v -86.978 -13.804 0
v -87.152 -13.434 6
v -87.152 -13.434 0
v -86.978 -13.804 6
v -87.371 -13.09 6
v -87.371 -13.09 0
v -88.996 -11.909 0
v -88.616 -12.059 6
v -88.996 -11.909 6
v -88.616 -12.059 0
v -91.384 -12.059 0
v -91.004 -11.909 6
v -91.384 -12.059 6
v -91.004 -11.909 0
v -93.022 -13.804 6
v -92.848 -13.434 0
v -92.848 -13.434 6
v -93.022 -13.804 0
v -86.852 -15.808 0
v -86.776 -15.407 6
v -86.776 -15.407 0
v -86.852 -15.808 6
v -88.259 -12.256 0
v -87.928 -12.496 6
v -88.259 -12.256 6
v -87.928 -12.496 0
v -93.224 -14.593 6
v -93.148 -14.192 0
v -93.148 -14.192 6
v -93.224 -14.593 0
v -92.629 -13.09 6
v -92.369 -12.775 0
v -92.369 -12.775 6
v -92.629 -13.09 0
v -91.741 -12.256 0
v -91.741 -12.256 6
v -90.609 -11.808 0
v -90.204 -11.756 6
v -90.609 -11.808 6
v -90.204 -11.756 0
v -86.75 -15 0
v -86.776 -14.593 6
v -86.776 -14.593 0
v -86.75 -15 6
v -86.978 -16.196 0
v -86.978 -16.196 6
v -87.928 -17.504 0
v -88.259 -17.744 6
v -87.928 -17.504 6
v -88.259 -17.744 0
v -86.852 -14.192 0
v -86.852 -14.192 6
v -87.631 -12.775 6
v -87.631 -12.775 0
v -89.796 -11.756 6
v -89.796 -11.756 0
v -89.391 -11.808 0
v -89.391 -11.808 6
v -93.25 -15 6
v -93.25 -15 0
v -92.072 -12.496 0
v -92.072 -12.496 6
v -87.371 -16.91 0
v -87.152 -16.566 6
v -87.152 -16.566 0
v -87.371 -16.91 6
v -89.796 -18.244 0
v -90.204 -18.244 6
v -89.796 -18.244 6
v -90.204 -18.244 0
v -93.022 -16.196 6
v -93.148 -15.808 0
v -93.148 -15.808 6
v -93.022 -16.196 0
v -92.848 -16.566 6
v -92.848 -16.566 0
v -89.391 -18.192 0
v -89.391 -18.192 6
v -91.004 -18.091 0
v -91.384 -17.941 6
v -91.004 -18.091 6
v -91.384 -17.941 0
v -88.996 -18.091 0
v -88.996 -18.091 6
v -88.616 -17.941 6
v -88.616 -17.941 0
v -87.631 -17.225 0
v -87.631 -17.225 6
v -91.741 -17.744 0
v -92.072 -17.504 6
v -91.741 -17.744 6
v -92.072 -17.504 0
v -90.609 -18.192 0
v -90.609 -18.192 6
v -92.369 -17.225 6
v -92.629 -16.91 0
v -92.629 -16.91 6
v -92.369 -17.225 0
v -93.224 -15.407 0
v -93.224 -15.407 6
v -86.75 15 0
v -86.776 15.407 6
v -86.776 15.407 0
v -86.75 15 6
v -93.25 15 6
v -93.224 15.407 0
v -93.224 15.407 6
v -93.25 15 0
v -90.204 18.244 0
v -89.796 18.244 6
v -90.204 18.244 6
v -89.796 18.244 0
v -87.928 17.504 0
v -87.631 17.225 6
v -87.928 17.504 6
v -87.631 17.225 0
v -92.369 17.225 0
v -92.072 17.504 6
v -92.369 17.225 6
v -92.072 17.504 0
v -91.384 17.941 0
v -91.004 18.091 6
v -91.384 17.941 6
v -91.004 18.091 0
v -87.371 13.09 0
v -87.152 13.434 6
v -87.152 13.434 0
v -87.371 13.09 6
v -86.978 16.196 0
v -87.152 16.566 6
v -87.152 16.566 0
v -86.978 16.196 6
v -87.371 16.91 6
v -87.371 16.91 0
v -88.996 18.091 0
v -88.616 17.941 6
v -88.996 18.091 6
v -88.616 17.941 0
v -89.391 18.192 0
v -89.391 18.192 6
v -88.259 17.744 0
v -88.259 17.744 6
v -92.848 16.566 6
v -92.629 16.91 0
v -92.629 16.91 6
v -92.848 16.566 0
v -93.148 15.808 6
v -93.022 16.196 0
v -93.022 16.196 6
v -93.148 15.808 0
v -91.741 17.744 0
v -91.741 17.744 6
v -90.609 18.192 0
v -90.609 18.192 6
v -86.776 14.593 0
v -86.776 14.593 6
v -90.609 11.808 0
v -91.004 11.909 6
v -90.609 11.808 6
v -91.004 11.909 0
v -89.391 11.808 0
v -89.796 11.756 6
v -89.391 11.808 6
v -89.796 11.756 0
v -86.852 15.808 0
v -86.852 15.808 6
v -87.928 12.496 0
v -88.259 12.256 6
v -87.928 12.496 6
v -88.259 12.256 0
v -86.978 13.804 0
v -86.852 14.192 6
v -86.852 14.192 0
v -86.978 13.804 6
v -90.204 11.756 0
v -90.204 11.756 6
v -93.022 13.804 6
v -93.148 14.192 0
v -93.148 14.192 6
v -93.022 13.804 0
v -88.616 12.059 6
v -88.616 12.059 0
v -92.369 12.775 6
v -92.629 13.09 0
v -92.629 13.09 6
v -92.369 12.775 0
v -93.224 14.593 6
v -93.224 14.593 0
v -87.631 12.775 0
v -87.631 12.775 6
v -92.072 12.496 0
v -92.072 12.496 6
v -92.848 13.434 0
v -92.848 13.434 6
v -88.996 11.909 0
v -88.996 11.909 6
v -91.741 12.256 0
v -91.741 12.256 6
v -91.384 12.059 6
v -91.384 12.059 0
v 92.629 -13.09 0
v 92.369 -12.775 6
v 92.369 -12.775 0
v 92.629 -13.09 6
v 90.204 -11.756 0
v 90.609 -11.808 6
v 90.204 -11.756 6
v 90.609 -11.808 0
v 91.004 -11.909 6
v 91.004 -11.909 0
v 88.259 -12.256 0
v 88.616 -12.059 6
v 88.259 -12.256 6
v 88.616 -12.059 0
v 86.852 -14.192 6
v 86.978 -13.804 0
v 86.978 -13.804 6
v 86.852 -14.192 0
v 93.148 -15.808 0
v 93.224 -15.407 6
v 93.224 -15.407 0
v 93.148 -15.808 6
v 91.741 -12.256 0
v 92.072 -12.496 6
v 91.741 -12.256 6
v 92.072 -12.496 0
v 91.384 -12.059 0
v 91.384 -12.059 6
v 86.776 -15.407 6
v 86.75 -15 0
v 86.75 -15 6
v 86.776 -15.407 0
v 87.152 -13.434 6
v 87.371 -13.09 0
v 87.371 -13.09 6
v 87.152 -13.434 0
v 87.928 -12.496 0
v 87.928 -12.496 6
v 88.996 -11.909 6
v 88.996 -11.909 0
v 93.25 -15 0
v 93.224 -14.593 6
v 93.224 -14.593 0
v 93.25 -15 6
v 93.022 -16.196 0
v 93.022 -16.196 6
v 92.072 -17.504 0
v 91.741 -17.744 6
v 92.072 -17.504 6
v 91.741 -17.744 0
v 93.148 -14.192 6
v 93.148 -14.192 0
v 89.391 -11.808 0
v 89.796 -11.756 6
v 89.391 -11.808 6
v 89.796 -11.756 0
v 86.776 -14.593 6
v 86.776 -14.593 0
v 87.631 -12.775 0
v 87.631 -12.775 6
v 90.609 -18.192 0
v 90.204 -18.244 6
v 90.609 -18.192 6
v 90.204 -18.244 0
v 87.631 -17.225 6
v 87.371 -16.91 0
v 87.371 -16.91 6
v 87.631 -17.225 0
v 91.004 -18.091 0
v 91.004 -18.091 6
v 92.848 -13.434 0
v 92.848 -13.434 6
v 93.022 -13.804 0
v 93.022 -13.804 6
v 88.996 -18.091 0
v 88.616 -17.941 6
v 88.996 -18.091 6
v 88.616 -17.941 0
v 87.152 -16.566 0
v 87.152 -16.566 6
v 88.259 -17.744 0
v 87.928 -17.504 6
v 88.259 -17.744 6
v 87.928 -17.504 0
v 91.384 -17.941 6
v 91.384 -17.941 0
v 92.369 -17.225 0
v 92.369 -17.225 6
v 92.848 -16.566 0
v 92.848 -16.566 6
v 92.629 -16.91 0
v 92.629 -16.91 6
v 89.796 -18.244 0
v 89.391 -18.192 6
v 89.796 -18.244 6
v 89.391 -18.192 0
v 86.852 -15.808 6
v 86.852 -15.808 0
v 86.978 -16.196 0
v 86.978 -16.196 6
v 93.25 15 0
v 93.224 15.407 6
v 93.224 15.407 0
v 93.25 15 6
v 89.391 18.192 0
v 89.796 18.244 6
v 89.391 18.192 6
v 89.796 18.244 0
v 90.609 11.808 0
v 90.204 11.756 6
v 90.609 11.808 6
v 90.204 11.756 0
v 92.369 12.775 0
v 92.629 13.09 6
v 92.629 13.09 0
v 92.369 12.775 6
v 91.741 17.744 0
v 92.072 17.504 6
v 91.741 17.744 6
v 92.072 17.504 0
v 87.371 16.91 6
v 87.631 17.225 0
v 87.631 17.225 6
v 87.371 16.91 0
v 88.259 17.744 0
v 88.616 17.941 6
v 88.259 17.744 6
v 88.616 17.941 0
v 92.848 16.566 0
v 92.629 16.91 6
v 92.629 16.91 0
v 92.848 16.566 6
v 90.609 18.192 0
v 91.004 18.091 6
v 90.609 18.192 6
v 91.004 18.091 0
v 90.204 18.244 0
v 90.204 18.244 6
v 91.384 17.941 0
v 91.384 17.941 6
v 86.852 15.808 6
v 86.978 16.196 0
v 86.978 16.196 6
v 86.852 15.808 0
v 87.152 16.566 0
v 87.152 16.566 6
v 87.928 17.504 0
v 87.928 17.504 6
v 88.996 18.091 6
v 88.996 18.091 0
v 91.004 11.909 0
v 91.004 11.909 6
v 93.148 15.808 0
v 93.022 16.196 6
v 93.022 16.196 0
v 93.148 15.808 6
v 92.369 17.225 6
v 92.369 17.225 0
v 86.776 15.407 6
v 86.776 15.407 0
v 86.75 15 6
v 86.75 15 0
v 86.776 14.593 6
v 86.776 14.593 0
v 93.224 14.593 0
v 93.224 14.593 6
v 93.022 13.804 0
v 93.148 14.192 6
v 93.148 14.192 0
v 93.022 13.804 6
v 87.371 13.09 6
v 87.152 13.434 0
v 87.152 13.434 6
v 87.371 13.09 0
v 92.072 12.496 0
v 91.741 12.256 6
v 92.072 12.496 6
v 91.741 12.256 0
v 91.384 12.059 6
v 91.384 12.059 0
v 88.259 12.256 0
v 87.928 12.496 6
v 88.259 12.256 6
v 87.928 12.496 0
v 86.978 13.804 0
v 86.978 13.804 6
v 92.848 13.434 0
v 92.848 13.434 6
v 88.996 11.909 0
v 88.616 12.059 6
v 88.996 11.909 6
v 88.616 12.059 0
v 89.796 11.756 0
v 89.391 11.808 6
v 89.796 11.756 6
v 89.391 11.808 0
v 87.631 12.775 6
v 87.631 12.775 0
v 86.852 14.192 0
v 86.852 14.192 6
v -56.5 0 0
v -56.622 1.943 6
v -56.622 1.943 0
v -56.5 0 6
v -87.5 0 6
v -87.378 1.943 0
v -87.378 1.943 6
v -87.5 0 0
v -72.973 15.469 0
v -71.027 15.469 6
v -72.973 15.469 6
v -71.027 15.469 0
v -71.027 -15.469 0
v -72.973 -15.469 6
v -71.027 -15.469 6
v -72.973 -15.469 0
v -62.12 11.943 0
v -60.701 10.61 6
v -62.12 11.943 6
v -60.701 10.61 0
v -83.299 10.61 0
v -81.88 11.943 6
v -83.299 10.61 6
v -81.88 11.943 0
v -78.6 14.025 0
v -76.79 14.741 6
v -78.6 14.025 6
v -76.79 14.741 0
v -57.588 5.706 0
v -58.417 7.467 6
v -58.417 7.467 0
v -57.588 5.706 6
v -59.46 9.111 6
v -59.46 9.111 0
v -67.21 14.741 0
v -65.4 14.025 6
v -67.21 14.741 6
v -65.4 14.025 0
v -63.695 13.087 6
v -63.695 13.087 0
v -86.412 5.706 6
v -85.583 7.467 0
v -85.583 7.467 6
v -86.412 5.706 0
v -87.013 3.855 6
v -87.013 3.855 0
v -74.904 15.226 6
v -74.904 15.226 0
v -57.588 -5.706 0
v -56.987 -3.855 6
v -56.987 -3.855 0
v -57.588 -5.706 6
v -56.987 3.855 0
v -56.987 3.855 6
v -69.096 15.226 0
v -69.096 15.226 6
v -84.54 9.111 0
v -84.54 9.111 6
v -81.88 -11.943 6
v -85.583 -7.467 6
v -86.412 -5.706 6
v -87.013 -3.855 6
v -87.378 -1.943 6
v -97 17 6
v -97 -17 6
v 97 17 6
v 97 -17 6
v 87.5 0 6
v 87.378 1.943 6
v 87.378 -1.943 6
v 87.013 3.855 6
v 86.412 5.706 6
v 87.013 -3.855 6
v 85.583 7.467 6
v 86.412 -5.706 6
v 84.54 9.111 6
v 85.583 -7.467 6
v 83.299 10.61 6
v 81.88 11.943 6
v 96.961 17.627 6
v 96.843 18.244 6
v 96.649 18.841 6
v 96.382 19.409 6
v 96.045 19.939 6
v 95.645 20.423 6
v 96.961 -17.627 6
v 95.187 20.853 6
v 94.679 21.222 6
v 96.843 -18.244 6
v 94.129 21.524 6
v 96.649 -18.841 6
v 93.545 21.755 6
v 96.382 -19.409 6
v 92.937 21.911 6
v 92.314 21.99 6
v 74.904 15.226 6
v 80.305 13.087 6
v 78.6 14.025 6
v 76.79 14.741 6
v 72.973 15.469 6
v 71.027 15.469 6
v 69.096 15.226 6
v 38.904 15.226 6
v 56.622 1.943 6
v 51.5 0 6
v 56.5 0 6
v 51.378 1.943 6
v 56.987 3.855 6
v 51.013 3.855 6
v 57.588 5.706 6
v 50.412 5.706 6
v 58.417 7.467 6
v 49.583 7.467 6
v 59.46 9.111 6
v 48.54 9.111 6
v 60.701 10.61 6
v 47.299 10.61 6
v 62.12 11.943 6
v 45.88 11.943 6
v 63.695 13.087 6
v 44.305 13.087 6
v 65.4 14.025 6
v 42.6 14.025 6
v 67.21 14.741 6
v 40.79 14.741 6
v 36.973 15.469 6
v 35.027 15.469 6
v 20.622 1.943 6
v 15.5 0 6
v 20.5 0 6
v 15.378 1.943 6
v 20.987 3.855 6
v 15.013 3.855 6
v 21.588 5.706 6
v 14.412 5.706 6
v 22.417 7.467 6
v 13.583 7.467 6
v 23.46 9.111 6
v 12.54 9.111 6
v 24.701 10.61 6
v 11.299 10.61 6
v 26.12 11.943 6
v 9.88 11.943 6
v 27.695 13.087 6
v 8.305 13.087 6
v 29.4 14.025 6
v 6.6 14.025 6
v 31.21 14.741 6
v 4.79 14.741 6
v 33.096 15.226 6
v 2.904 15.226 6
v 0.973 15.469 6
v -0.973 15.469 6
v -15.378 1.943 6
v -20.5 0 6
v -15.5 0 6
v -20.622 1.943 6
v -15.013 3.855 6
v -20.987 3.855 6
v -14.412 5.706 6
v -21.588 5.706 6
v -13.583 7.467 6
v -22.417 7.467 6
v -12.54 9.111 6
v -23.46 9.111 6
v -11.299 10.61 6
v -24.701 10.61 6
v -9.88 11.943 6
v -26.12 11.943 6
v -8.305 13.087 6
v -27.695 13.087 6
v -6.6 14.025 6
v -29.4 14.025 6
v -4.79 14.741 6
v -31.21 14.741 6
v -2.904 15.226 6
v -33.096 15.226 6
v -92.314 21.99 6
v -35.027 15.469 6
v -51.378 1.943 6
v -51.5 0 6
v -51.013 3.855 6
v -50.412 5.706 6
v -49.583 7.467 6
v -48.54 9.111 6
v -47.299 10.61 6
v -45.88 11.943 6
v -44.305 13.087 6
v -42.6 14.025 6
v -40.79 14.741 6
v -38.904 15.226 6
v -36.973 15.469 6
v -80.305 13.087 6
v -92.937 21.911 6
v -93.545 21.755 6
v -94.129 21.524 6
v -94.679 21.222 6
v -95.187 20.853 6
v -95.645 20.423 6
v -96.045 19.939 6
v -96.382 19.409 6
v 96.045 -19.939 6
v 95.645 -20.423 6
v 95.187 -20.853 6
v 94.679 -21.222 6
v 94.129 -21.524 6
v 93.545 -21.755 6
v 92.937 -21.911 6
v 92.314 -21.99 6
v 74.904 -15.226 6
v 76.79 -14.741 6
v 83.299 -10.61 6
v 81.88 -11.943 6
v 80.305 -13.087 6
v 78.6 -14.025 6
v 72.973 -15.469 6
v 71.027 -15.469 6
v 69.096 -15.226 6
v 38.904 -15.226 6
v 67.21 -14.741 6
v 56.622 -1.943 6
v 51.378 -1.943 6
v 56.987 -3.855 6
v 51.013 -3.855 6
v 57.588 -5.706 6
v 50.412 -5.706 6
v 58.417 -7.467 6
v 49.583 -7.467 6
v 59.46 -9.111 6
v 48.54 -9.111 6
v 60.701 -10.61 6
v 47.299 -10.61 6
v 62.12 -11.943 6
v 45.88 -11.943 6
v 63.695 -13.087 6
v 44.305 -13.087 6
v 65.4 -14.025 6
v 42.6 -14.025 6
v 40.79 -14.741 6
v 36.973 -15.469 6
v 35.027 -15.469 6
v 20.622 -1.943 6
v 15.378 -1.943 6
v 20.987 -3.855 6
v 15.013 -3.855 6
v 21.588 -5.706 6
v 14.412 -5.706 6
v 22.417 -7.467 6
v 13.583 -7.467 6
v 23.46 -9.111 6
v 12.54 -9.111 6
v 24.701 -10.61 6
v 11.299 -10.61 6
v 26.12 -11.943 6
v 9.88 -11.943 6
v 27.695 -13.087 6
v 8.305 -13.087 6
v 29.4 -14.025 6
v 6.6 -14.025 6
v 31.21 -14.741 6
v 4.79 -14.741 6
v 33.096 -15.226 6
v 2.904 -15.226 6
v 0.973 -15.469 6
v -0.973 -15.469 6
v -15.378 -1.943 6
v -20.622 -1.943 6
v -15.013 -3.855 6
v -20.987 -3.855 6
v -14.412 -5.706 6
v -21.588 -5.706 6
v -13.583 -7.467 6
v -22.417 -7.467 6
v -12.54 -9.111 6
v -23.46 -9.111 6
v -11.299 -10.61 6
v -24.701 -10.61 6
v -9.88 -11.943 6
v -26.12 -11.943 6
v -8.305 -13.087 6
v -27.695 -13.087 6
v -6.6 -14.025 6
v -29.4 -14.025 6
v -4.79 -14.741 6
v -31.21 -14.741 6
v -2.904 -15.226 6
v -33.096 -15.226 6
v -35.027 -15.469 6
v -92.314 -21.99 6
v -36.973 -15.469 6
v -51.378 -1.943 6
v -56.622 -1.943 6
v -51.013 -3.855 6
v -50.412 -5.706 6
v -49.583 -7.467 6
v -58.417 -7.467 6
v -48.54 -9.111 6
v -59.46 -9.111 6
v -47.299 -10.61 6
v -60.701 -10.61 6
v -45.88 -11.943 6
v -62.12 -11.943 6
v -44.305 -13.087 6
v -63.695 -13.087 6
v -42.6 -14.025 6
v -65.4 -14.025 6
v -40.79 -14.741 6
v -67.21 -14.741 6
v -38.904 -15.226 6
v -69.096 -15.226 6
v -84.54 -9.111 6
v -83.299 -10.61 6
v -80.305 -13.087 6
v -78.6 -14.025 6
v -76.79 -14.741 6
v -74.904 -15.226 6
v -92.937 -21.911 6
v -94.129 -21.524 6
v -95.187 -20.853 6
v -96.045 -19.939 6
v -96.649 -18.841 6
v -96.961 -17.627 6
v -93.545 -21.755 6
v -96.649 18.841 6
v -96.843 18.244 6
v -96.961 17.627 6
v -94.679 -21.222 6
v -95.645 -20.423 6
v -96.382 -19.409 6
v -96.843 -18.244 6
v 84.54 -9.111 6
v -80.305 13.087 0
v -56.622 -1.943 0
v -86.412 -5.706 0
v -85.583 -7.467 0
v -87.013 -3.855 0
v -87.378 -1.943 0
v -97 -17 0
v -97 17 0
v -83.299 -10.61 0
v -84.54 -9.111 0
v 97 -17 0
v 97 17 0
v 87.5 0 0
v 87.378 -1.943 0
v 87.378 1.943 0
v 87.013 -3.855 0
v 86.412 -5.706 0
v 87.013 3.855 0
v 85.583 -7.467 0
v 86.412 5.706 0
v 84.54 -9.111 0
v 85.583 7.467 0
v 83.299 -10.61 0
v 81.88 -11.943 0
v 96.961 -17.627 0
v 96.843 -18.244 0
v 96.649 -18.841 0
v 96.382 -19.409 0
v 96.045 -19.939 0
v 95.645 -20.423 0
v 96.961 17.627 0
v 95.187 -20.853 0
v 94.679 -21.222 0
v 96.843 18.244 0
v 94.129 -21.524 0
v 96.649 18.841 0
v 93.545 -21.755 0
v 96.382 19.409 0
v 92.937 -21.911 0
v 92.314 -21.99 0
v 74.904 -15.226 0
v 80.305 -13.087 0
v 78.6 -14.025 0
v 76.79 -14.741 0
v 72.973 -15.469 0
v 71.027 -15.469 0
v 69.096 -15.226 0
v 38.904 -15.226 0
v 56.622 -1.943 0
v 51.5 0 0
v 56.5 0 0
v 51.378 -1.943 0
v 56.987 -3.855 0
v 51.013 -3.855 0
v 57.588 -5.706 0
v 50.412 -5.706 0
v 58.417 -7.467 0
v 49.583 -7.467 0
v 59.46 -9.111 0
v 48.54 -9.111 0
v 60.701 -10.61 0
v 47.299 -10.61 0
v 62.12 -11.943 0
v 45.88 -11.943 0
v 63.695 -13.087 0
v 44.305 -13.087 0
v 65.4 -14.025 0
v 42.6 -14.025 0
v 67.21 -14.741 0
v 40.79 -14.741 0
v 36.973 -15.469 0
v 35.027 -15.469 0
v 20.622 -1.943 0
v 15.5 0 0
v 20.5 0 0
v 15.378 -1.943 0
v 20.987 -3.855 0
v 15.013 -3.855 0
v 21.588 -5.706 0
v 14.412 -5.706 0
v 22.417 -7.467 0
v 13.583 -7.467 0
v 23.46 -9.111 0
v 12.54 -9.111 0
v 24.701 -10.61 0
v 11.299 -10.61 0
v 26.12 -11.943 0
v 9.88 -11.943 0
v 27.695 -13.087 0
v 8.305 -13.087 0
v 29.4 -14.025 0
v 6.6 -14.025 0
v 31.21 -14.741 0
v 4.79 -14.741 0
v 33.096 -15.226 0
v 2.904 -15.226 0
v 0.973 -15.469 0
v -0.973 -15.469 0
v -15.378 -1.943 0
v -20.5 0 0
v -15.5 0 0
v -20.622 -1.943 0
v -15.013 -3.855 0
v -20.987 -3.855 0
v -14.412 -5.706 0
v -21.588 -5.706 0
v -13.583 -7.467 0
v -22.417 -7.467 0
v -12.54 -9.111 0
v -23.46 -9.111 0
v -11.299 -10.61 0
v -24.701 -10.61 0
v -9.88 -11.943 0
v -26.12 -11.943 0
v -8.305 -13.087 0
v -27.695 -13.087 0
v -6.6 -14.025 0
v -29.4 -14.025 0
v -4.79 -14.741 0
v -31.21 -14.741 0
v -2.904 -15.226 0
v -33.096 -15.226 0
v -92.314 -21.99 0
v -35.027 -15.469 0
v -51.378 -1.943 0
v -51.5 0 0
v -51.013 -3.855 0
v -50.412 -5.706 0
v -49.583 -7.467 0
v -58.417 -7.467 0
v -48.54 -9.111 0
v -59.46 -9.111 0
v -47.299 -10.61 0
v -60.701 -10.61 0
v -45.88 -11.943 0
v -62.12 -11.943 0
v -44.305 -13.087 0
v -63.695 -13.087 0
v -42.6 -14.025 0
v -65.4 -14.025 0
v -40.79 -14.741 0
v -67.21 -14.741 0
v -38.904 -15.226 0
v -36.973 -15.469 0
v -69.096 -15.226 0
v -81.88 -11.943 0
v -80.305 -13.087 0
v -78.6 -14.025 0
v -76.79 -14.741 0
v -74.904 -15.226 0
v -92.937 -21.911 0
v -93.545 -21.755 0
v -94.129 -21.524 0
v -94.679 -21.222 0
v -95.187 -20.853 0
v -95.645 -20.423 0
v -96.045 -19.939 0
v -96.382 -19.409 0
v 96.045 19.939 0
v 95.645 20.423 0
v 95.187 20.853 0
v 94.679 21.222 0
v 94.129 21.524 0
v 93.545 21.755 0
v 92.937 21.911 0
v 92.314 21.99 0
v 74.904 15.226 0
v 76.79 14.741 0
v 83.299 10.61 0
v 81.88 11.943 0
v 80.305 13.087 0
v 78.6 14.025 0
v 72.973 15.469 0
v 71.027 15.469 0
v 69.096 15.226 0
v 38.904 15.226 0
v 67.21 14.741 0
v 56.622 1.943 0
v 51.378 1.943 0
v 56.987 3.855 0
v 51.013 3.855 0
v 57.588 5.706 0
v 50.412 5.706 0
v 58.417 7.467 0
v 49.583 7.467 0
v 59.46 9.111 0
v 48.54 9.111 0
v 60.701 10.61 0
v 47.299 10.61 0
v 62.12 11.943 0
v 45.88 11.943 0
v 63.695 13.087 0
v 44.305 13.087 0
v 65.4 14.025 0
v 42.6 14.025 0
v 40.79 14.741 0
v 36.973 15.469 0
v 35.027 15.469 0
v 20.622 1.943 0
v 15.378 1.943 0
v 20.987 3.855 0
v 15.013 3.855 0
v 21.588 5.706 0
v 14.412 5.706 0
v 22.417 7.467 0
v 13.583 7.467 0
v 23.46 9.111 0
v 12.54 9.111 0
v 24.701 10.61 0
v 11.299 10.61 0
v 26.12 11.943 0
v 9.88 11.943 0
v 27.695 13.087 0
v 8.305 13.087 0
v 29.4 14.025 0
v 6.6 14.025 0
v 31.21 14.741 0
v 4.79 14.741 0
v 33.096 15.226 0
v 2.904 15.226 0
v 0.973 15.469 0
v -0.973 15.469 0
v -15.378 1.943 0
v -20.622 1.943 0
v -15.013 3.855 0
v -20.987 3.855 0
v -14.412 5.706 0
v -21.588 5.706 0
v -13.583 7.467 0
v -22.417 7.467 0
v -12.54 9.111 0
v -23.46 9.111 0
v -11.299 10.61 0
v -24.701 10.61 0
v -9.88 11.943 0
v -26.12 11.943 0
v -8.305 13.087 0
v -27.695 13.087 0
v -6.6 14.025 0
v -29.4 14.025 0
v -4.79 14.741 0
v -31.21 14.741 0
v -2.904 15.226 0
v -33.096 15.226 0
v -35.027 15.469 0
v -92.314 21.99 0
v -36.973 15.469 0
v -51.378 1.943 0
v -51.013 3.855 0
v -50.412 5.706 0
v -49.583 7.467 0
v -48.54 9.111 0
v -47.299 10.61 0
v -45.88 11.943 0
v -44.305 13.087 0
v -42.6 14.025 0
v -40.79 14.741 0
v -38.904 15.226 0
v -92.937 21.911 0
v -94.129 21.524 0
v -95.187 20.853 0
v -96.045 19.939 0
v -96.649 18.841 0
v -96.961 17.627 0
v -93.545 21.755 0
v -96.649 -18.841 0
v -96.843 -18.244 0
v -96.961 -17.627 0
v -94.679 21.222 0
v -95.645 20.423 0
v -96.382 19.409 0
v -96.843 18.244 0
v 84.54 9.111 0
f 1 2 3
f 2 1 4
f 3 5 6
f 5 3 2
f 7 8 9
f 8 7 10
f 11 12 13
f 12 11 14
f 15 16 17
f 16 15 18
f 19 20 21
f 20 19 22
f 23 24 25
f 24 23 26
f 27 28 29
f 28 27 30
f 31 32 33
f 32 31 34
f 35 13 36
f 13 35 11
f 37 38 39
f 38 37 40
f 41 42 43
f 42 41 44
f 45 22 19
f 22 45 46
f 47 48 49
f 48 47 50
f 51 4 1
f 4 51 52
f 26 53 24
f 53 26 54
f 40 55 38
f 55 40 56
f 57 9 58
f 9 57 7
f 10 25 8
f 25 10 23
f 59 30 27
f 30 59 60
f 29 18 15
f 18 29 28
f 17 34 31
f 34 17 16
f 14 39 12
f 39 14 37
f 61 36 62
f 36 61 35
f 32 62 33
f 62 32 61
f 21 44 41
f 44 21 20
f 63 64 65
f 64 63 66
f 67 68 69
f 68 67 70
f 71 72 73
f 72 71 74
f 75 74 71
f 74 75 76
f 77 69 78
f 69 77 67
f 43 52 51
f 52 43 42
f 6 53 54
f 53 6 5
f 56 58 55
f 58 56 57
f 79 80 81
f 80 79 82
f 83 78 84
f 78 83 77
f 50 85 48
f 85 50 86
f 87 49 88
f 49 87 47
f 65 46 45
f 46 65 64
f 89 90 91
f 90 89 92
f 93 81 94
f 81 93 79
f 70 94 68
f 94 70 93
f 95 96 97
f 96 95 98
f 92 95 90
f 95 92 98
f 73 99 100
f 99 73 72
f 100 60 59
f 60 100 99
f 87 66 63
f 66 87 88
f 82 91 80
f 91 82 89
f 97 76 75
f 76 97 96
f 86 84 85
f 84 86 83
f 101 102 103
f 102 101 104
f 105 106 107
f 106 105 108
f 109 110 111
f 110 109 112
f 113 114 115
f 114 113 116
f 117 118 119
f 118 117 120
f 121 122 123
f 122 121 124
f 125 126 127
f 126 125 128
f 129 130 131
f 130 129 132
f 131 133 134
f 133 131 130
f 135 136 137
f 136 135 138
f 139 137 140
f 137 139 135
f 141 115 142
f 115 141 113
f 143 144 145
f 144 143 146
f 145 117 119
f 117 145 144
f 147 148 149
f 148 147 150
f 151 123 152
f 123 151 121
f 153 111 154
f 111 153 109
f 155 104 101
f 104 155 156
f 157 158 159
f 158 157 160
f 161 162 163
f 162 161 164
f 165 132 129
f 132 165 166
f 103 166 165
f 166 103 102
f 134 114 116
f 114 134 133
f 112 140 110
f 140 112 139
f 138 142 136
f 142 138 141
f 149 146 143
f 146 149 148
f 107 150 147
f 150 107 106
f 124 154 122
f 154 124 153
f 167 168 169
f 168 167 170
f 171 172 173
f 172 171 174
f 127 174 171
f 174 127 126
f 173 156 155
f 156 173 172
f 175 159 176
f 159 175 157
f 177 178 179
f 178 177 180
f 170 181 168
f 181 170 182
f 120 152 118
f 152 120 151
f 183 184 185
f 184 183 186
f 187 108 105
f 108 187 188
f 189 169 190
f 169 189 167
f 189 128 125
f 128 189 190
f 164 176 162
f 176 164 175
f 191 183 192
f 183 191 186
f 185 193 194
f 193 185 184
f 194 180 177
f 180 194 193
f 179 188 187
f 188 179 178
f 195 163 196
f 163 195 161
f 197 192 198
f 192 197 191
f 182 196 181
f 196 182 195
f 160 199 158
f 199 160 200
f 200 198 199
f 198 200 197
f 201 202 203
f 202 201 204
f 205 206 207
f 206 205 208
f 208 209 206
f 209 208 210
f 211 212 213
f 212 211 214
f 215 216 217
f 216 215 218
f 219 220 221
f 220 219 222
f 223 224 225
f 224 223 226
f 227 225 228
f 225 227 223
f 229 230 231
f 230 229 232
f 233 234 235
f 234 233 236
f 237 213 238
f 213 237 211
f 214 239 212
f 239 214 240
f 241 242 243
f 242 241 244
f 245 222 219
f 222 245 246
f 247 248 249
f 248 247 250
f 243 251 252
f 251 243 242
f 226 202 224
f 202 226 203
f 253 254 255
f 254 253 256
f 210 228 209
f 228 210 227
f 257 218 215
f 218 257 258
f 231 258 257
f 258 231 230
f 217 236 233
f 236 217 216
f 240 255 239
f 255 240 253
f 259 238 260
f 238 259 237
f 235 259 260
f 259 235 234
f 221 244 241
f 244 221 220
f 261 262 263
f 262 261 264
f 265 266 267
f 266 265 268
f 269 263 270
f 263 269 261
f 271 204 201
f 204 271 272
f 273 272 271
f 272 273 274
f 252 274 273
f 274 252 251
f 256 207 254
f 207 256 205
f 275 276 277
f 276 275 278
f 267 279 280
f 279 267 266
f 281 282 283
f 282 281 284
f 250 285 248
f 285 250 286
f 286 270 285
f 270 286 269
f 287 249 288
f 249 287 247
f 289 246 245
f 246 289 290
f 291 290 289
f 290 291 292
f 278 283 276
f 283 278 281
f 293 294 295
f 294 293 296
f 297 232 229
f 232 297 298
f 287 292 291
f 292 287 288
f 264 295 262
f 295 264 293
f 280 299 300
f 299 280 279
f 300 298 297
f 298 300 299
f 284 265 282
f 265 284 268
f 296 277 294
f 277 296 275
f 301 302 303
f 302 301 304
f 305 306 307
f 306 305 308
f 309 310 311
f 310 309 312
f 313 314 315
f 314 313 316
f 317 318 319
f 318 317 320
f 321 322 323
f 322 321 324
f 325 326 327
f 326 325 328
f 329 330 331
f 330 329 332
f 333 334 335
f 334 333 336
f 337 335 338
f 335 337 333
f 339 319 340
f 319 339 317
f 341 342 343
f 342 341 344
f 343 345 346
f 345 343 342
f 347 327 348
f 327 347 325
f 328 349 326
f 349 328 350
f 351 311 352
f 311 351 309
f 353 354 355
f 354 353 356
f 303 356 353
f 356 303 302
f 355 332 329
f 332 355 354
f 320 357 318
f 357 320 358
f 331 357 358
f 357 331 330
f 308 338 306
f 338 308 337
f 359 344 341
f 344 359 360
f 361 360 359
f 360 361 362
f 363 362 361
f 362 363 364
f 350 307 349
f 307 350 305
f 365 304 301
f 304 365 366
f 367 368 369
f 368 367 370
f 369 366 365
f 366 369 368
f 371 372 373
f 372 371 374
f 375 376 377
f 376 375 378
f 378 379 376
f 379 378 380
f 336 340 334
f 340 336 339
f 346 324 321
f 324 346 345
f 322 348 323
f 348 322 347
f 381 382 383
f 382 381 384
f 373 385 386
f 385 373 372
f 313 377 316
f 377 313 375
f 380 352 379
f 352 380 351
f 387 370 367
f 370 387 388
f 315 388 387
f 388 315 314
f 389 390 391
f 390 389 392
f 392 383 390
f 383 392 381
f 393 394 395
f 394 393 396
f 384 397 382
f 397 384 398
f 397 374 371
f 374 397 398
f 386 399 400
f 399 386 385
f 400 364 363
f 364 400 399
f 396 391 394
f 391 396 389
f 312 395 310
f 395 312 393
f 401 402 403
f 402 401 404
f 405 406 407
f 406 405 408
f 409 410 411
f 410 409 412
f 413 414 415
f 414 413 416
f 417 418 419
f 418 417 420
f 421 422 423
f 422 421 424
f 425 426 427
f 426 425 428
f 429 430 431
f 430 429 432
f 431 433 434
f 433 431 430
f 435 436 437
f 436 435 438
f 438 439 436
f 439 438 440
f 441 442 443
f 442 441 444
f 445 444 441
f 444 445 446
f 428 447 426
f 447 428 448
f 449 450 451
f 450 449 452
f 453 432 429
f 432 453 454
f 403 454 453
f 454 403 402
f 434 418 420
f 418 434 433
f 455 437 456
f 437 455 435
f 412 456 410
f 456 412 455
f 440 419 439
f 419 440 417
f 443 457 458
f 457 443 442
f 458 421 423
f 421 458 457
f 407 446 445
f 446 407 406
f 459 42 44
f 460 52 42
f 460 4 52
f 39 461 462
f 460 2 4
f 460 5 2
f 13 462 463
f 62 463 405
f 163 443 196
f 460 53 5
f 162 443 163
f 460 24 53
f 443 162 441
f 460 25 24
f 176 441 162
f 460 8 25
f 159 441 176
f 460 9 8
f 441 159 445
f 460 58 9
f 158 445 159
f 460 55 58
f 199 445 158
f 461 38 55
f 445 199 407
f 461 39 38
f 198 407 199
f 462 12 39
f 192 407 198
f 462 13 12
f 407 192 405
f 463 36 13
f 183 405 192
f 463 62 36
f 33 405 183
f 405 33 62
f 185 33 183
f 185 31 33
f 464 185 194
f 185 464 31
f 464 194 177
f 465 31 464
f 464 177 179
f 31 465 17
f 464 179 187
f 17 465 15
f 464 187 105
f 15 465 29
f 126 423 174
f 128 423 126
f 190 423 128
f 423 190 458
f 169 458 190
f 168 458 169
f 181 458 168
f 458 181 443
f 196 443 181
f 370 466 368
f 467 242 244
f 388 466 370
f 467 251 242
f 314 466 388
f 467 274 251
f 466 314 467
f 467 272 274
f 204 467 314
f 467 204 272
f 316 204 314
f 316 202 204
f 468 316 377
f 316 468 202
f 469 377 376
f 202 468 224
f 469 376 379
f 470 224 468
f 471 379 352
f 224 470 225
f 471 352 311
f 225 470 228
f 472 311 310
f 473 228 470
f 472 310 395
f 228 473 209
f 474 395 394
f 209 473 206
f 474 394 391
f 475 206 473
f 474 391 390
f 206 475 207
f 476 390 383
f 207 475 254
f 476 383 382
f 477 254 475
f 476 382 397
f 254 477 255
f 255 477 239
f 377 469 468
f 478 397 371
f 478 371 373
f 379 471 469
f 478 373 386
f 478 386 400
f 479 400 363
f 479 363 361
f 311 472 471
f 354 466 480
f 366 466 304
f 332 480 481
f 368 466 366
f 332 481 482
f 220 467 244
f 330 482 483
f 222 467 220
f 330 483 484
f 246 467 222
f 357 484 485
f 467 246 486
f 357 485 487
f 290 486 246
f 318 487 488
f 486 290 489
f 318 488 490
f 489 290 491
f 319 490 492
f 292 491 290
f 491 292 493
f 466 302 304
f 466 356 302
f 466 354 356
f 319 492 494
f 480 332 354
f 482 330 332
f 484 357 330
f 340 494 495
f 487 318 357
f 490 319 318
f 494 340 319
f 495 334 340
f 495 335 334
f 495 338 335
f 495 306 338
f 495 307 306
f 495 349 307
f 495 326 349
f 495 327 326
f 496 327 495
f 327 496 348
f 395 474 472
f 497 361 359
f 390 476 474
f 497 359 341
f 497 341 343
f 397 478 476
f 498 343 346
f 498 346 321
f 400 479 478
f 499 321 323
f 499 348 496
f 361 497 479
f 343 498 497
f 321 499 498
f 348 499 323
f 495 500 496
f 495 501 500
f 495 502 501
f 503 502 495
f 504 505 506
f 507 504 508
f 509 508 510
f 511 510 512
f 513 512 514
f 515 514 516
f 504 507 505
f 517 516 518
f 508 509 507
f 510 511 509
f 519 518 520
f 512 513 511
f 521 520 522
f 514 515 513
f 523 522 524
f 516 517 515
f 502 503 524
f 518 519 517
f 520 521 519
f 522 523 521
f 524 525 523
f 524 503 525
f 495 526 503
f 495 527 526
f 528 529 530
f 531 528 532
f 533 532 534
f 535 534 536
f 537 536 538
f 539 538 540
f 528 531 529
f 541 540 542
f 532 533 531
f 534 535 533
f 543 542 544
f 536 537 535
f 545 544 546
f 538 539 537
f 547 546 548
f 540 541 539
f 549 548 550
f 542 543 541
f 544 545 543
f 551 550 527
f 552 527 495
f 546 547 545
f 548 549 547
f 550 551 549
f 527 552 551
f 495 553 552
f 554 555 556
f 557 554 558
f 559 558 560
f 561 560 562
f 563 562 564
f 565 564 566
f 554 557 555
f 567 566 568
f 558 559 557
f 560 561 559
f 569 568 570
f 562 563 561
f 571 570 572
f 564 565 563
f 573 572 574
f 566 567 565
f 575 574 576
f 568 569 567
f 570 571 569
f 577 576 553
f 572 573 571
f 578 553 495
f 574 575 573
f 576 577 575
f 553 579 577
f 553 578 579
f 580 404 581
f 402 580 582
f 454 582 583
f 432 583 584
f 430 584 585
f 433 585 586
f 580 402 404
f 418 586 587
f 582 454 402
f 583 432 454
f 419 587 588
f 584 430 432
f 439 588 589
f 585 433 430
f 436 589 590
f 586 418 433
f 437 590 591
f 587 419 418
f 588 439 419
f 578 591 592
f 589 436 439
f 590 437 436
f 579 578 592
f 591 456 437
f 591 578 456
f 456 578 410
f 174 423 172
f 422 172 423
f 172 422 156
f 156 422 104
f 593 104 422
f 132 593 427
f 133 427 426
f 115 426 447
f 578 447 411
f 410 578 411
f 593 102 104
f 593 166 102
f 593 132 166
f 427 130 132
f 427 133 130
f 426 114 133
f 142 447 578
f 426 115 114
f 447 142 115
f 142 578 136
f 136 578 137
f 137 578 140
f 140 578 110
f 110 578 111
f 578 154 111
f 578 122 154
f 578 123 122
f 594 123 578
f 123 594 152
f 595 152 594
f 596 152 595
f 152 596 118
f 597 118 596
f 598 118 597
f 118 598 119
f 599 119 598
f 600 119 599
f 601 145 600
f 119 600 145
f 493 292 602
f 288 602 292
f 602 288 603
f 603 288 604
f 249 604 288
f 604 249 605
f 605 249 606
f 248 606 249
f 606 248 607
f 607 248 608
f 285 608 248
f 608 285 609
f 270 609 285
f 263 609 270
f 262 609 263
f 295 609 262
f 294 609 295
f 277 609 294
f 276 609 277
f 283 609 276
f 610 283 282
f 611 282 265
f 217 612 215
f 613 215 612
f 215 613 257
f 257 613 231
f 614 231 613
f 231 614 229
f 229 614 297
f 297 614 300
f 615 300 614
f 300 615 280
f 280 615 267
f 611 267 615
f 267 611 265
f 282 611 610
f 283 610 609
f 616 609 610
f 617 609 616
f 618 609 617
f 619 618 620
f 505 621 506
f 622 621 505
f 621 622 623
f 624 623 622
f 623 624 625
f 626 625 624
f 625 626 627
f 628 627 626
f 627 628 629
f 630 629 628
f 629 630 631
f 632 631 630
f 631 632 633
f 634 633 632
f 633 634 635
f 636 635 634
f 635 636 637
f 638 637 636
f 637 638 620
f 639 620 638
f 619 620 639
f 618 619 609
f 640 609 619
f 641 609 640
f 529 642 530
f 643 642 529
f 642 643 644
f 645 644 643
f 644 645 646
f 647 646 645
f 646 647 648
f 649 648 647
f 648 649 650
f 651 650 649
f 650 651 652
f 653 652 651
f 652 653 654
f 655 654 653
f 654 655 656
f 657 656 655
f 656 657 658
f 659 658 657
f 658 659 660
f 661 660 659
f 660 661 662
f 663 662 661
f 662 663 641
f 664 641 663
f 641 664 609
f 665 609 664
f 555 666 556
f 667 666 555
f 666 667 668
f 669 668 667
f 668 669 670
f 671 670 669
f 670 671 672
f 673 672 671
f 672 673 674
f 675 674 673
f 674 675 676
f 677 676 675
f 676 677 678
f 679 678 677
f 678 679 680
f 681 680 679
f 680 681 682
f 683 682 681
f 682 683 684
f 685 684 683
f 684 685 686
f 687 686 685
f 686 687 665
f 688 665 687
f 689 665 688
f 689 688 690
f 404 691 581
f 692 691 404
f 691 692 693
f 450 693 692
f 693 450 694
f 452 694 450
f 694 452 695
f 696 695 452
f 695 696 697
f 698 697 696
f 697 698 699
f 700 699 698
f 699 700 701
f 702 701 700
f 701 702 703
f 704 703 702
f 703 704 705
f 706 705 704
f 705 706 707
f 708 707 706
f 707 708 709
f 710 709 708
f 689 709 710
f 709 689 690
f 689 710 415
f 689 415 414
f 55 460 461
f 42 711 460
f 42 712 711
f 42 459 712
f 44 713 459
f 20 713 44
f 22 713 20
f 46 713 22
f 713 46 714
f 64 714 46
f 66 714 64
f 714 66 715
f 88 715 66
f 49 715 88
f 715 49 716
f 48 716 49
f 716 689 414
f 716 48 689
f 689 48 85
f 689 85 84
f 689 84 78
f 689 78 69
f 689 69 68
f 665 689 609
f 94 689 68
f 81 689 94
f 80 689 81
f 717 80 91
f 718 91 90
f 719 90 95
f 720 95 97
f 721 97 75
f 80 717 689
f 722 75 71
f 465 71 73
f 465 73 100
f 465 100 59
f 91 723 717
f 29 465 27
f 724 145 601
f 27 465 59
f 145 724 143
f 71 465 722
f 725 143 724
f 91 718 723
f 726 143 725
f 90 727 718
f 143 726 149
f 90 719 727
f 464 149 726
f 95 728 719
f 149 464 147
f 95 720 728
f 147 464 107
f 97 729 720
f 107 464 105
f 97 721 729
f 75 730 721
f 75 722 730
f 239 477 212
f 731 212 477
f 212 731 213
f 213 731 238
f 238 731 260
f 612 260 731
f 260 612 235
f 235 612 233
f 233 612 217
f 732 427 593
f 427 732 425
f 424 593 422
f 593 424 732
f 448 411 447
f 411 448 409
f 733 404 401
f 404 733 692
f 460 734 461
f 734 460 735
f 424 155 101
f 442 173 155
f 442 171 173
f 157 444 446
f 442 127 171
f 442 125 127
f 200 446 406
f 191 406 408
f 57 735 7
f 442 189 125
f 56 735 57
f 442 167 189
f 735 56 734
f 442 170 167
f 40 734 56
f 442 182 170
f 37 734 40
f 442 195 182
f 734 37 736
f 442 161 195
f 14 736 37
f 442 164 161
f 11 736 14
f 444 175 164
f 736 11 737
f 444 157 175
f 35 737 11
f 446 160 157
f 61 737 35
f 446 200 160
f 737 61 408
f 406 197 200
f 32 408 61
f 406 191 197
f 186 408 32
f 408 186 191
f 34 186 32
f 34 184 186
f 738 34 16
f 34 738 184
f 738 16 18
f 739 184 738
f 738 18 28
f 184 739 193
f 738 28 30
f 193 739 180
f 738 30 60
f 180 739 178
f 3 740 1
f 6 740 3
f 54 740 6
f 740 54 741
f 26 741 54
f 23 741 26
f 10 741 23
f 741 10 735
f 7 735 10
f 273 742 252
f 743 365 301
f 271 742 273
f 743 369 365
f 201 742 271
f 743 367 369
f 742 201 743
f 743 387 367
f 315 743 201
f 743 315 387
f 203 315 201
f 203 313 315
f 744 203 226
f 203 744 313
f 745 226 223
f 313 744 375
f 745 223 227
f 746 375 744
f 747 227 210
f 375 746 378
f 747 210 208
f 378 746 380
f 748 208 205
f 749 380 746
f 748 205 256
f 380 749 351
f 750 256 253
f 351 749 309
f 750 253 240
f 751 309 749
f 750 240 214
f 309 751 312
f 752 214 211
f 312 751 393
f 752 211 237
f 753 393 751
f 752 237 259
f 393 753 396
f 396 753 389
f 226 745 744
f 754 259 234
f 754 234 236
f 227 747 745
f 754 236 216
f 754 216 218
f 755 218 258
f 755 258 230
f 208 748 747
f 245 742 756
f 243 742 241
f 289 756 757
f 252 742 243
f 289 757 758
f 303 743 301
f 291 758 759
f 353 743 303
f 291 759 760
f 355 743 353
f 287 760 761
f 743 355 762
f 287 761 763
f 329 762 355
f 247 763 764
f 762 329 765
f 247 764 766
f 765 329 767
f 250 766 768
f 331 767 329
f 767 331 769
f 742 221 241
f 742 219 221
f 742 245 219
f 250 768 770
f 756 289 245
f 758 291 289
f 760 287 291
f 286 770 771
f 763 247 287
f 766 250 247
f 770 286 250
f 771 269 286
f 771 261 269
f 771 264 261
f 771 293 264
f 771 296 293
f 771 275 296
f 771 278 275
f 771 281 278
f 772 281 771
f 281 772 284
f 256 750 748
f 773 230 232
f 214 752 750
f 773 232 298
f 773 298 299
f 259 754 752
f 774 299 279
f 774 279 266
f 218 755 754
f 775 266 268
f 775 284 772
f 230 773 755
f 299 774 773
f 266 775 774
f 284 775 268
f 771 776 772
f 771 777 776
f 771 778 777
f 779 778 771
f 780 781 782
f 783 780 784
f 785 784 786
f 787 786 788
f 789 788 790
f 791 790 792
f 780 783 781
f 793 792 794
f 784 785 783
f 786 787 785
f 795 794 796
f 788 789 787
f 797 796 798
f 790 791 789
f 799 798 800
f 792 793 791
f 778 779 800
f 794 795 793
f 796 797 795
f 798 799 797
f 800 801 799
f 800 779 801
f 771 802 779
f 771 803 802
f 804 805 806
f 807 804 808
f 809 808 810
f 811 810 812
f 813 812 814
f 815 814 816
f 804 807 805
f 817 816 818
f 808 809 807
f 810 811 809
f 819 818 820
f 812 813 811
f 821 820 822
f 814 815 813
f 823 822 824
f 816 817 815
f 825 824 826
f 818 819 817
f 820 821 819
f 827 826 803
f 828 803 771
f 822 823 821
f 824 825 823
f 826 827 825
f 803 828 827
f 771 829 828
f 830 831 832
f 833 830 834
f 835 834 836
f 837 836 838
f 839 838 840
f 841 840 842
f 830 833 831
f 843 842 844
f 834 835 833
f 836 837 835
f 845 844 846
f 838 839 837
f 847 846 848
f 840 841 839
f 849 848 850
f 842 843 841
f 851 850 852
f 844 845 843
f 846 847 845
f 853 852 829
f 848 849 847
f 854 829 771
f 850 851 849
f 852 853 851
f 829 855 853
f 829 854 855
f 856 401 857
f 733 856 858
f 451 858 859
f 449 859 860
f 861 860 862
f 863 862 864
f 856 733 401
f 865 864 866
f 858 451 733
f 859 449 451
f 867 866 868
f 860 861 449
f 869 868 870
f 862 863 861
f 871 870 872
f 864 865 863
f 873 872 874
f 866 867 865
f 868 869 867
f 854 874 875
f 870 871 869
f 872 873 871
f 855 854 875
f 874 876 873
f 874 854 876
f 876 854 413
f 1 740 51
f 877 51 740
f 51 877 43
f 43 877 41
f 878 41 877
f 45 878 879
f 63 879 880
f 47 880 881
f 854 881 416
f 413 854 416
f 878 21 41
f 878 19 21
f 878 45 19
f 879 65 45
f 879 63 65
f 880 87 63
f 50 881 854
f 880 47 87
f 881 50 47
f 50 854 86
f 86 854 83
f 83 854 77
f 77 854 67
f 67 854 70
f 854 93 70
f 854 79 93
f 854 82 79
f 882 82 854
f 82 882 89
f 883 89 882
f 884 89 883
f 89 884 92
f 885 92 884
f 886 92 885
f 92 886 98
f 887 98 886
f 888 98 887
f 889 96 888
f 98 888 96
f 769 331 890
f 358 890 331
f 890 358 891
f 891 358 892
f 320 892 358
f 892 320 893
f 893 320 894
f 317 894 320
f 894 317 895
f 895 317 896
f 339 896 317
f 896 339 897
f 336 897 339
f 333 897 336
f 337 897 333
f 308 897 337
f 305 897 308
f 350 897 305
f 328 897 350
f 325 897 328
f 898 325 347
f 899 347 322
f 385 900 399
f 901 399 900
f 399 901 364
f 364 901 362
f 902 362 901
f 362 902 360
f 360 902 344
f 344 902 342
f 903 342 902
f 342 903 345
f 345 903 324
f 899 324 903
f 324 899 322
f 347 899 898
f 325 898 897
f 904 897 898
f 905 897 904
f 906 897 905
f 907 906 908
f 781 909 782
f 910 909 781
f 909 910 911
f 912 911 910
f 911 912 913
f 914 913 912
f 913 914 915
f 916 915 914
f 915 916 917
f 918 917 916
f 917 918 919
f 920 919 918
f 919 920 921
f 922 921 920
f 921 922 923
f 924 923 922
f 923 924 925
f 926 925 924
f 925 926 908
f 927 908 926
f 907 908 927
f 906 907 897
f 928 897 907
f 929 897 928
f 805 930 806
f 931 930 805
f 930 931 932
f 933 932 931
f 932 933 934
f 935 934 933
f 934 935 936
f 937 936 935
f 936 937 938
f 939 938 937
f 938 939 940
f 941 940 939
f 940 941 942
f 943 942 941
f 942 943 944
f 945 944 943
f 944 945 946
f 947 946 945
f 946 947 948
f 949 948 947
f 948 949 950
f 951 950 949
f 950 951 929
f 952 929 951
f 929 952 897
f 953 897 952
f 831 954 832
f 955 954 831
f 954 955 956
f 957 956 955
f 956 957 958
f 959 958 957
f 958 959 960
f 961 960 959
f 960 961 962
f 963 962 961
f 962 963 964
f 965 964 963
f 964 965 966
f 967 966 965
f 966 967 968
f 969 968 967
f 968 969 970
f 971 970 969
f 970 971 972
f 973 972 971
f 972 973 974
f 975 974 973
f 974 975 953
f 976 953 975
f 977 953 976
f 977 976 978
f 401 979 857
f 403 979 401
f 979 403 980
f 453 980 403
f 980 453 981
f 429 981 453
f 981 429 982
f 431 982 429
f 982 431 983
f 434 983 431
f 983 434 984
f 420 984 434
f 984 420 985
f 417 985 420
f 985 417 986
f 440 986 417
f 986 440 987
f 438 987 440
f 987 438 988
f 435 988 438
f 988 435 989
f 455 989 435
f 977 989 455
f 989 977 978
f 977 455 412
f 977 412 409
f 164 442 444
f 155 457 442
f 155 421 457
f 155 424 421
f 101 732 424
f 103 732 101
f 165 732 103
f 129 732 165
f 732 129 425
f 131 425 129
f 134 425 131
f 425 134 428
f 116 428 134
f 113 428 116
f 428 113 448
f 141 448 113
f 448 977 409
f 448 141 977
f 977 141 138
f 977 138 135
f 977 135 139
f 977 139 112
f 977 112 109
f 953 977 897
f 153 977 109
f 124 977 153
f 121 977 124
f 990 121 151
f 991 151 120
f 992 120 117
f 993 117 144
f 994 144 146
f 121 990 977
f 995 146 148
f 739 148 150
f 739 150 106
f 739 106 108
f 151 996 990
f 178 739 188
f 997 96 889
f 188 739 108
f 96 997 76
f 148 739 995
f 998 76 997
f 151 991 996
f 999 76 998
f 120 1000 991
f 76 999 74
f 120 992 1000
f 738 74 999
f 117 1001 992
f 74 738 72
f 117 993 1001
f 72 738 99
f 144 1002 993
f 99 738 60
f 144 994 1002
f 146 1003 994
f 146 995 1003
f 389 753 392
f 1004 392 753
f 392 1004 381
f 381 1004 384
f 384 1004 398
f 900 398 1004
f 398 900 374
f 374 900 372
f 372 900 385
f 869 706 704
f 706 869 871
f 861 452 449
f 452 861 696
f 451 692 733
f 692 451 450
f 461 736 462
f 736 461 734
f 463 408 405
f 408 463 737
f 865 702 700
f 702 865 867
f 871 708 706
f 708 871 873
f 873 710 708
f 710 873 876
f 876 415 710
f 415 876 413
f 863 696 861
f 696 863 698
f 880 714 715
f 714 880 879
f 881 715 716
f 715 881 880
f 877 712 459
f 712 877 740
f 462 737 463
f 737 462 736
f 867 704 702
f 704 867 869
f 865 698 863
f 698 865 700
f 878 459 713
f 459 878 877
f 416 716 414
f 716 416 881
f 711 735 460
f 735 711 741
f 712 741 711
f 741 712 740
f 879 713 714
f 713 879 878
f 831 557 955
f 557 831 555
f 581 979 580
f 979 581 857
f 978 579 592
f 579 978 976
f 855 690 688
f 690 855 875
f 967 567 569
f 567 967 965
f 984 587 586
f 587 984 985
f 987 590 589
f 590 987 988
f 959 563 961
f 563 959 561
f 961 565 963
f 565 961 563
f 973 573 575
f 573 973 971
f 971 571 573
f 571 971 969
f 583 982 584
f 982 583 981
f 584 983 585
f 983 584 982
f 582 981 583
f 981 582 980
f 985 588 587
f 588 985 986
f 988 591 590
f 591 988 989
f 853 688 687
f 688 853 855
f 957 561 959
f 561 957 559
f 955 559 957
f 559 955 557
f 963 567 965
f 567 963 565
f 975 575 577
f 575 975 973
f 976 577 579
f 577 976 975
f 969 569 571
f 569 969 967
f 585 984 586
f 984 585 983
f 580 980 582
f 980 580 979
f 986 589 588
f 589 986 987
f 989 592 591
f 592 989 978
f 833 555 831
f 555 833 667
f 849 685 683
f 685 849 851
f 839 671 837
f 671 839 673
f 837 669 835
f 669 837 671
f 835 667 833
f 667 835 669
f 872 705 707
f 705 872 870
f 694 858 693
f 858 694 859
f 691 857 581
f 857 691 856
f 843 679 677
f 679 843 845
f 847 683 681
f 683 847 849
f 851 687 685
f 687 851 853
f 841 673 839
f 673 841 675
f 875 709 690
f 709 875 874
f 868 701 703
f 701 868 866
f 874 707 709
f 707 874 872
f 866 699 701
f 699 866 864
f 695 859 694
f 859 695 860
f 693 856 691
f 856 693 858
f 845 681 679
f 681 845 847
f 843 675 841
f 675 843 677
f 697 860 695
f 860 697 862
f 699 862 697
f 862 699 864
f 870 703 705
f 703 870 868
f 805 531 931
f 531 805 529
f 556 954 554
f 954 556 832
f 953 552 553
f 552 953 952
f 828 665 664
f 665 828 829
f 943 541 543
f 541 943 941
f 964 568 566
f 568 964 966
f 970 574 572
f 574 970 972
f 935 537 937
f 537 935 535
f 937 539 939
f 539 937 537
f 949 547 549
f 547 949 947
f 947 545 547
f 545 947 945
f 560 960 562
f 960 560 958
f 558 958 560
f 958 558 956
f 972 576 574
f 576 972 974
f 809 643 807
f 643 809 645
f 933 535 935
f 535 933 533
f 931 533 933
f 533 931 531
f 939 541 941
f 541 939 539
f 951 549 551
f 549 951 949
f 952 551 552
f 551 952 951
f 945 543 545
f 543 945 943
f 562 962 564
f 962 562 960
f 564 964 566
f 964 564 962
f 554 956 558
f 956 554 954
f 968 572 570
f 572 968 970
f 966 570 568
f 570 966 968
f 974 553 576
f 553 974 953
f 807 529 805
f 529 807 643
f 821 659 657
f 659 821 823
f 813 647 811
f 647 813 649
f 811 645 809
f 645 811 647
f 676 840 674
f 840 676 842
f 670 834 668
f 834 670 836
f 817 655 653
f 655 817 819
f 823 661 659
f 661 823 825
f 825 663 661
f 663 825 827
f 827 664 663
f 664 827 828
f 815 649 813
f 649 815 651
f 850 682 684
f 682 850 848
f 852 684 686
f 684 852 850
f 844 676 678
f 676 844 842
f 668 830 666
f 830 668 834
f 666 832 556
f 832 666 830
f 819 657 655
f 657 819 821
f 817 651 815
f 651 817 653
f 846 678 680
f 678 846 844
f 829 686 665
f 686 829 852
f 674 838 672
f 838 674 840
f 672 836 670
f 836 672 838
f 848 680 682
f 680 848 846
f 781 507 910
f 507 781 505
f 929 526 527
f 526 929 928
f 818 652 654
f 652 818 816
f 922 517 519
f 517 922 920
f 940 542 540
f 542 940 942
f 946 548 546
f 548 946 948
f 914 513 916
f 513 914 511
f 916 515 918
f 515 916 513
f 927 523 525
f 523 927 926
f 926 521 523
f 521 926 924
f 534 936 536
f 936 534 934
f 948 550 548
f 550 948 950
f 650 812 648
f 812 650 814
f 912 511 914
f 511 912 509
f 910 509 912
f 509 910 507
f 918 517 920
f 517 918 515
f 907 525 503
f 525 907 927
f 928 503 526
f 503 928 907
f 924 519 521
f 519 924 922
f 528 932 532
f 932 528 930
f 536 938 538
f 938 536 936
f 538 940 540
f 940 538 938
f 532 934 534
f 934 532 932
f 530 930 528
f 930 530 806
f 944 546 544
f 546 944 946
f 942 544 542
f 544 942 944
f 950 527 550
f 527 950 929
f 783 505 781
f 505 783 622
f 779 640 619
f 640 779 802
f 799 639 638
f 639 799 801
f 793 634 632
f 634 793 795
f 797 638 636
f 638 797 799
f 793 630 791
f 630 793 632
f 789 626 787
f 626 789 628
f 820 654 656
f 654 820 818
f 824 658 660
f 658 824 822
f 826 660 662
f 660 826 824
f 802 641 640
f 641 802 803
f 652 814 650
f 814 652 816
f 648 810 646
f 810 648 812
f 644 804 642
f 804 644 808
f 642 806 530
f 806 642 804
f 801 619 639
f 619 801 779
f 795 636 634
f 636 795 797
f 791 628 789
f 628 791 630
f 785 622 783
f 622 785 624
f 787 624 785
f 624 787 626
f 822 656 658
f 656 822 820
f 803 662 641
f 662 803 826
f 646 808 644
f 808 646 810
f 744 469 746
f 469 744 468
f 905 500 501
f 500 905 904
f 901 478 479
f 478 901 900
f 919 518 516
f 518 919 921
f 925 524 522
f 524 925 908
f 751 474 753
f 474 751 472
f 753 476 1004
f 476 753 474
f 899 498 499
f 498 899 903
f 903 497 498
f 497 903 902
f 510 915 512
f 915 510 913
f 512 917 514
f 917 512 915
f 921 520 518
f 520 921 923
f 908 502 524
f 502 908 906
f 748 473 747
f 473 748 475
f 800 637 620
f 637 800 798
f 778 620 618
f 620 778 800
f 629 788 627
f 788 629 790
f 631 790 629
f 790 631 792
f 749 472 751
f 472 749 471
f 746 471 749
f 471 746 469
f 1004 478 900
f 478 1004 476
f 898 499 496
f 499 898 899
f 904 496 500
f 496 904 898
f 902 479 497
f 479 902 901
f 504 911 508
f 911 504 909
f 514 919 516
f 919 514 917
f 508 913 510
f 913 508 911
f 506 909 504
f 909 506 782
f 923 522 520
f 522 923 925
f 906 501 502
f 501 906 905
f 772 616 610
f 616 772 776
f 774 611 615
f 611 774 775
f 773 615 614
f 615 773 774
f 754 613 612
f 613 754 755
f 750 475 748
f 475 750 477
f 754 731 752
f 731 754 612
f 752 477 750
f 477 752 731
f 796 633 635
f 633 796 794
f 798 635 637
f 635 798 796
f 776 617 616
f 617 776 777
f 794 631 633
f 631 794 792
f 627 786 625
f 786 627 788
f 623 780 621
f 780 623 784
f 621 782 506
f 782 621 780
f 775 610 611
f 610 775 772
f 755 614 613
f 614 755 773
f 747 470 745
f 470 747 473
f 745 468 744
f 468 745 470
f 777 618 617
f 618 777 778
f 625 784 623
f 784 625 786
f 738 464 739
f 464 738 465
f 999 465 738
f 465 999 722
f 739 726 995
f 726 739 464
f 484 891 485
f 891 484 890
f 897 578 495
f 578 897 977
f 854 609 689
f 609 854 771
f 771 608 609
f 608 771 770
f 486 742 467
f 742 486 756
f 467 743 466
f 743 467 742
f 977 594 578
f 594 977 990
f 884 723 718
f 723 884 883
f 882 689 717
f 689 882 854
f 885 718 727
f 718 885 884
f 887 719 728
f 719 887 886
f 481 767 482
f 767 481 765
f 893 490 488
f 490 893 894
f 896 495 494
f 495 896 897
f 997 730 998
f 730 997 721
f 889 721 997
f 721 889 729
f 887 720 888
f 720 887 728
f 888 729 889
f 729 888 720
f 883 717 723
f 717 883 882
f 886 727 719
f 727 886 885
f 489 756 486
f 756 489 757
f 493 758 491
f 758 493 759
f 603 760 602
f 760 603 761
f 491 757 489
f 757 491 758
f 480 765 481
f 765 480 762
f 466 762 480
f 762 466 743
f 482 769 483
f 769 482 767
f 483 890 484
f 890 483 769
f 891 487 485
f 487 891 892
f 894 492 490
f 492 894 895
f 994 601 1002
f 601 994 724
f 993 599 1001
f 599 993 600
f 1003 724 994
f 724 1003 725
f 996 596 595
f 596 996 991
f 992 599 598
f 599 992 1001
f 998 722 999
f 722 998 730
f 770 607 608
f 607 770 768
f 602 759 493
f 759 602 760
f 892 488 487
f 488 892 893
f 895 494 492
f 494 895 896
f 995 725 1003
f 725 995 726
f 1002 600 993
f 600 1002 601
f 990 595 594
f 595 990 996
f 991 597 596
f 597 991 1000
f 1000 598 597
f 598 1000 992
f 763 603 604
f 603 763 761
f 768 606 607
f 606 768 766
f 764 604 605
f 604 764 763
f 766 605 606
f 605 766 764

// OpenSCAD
$fn = 50;


difference() {
	union() {
		hull() {
			translate(v = [-92.0000000000, 17.0000000000, 0]) {
				cylinder(h = 6, r = 5);
			}
			translate(v = [92.0000000000, 17.0000000000, 0]) {
				cylinder(h = 6, r = 5);
			}
			translate(v = [-92.0000000000, -17.0000000000, 0]) {
				cylinder(h = 6, r = 5);
			}
			translate(v = [92.0000000000, -17.0000000000, 0]) {
				cylinder(h = 6, r = 5);
			}
		}
	}
	union() {
		#translate(v = [-90.0000000000, -15.0000000000, -100.0000000000]) {
			cylinder(h = 200, r = 3.2500000000);
		}
		#translate(v = [-90.0000000000, 15.0000000000, -100.0000000000]) {
			cylinder(h = 200, r = 3.2500000000);
		}
		#translate(v = [90.0000000000, -15.0000000000, -100.0000000000]) {
			cylinder(h = 200, r = 3.2500000000);
		}
		#translate(v = [90.0000000000, 15.0000000000, -100.0000000000]) {
			cylinder(h = 200, r = 3.2500000000);
		}
		#translate(v = [-72.0000000000, 0, 0]) {
			cylinder(h = 6, r = 15.5000000000);
		}
		#translate(v = [-36.0000000000, 0, 0]) {
			cylinder(h = 6, r = 15.5000000000);
		}
		#cylinder(h = 6, r = 15.5000000000);
		#translate(v = [36.0000000000, 0, 0]) {
			cylinder(h = 6, r = 15.5000000000);
		}
		#translate(v = [72.0000000000, 0, 0]) {
			cylinder(h = 6, r = 15.5000000000);
		}
	}
}
